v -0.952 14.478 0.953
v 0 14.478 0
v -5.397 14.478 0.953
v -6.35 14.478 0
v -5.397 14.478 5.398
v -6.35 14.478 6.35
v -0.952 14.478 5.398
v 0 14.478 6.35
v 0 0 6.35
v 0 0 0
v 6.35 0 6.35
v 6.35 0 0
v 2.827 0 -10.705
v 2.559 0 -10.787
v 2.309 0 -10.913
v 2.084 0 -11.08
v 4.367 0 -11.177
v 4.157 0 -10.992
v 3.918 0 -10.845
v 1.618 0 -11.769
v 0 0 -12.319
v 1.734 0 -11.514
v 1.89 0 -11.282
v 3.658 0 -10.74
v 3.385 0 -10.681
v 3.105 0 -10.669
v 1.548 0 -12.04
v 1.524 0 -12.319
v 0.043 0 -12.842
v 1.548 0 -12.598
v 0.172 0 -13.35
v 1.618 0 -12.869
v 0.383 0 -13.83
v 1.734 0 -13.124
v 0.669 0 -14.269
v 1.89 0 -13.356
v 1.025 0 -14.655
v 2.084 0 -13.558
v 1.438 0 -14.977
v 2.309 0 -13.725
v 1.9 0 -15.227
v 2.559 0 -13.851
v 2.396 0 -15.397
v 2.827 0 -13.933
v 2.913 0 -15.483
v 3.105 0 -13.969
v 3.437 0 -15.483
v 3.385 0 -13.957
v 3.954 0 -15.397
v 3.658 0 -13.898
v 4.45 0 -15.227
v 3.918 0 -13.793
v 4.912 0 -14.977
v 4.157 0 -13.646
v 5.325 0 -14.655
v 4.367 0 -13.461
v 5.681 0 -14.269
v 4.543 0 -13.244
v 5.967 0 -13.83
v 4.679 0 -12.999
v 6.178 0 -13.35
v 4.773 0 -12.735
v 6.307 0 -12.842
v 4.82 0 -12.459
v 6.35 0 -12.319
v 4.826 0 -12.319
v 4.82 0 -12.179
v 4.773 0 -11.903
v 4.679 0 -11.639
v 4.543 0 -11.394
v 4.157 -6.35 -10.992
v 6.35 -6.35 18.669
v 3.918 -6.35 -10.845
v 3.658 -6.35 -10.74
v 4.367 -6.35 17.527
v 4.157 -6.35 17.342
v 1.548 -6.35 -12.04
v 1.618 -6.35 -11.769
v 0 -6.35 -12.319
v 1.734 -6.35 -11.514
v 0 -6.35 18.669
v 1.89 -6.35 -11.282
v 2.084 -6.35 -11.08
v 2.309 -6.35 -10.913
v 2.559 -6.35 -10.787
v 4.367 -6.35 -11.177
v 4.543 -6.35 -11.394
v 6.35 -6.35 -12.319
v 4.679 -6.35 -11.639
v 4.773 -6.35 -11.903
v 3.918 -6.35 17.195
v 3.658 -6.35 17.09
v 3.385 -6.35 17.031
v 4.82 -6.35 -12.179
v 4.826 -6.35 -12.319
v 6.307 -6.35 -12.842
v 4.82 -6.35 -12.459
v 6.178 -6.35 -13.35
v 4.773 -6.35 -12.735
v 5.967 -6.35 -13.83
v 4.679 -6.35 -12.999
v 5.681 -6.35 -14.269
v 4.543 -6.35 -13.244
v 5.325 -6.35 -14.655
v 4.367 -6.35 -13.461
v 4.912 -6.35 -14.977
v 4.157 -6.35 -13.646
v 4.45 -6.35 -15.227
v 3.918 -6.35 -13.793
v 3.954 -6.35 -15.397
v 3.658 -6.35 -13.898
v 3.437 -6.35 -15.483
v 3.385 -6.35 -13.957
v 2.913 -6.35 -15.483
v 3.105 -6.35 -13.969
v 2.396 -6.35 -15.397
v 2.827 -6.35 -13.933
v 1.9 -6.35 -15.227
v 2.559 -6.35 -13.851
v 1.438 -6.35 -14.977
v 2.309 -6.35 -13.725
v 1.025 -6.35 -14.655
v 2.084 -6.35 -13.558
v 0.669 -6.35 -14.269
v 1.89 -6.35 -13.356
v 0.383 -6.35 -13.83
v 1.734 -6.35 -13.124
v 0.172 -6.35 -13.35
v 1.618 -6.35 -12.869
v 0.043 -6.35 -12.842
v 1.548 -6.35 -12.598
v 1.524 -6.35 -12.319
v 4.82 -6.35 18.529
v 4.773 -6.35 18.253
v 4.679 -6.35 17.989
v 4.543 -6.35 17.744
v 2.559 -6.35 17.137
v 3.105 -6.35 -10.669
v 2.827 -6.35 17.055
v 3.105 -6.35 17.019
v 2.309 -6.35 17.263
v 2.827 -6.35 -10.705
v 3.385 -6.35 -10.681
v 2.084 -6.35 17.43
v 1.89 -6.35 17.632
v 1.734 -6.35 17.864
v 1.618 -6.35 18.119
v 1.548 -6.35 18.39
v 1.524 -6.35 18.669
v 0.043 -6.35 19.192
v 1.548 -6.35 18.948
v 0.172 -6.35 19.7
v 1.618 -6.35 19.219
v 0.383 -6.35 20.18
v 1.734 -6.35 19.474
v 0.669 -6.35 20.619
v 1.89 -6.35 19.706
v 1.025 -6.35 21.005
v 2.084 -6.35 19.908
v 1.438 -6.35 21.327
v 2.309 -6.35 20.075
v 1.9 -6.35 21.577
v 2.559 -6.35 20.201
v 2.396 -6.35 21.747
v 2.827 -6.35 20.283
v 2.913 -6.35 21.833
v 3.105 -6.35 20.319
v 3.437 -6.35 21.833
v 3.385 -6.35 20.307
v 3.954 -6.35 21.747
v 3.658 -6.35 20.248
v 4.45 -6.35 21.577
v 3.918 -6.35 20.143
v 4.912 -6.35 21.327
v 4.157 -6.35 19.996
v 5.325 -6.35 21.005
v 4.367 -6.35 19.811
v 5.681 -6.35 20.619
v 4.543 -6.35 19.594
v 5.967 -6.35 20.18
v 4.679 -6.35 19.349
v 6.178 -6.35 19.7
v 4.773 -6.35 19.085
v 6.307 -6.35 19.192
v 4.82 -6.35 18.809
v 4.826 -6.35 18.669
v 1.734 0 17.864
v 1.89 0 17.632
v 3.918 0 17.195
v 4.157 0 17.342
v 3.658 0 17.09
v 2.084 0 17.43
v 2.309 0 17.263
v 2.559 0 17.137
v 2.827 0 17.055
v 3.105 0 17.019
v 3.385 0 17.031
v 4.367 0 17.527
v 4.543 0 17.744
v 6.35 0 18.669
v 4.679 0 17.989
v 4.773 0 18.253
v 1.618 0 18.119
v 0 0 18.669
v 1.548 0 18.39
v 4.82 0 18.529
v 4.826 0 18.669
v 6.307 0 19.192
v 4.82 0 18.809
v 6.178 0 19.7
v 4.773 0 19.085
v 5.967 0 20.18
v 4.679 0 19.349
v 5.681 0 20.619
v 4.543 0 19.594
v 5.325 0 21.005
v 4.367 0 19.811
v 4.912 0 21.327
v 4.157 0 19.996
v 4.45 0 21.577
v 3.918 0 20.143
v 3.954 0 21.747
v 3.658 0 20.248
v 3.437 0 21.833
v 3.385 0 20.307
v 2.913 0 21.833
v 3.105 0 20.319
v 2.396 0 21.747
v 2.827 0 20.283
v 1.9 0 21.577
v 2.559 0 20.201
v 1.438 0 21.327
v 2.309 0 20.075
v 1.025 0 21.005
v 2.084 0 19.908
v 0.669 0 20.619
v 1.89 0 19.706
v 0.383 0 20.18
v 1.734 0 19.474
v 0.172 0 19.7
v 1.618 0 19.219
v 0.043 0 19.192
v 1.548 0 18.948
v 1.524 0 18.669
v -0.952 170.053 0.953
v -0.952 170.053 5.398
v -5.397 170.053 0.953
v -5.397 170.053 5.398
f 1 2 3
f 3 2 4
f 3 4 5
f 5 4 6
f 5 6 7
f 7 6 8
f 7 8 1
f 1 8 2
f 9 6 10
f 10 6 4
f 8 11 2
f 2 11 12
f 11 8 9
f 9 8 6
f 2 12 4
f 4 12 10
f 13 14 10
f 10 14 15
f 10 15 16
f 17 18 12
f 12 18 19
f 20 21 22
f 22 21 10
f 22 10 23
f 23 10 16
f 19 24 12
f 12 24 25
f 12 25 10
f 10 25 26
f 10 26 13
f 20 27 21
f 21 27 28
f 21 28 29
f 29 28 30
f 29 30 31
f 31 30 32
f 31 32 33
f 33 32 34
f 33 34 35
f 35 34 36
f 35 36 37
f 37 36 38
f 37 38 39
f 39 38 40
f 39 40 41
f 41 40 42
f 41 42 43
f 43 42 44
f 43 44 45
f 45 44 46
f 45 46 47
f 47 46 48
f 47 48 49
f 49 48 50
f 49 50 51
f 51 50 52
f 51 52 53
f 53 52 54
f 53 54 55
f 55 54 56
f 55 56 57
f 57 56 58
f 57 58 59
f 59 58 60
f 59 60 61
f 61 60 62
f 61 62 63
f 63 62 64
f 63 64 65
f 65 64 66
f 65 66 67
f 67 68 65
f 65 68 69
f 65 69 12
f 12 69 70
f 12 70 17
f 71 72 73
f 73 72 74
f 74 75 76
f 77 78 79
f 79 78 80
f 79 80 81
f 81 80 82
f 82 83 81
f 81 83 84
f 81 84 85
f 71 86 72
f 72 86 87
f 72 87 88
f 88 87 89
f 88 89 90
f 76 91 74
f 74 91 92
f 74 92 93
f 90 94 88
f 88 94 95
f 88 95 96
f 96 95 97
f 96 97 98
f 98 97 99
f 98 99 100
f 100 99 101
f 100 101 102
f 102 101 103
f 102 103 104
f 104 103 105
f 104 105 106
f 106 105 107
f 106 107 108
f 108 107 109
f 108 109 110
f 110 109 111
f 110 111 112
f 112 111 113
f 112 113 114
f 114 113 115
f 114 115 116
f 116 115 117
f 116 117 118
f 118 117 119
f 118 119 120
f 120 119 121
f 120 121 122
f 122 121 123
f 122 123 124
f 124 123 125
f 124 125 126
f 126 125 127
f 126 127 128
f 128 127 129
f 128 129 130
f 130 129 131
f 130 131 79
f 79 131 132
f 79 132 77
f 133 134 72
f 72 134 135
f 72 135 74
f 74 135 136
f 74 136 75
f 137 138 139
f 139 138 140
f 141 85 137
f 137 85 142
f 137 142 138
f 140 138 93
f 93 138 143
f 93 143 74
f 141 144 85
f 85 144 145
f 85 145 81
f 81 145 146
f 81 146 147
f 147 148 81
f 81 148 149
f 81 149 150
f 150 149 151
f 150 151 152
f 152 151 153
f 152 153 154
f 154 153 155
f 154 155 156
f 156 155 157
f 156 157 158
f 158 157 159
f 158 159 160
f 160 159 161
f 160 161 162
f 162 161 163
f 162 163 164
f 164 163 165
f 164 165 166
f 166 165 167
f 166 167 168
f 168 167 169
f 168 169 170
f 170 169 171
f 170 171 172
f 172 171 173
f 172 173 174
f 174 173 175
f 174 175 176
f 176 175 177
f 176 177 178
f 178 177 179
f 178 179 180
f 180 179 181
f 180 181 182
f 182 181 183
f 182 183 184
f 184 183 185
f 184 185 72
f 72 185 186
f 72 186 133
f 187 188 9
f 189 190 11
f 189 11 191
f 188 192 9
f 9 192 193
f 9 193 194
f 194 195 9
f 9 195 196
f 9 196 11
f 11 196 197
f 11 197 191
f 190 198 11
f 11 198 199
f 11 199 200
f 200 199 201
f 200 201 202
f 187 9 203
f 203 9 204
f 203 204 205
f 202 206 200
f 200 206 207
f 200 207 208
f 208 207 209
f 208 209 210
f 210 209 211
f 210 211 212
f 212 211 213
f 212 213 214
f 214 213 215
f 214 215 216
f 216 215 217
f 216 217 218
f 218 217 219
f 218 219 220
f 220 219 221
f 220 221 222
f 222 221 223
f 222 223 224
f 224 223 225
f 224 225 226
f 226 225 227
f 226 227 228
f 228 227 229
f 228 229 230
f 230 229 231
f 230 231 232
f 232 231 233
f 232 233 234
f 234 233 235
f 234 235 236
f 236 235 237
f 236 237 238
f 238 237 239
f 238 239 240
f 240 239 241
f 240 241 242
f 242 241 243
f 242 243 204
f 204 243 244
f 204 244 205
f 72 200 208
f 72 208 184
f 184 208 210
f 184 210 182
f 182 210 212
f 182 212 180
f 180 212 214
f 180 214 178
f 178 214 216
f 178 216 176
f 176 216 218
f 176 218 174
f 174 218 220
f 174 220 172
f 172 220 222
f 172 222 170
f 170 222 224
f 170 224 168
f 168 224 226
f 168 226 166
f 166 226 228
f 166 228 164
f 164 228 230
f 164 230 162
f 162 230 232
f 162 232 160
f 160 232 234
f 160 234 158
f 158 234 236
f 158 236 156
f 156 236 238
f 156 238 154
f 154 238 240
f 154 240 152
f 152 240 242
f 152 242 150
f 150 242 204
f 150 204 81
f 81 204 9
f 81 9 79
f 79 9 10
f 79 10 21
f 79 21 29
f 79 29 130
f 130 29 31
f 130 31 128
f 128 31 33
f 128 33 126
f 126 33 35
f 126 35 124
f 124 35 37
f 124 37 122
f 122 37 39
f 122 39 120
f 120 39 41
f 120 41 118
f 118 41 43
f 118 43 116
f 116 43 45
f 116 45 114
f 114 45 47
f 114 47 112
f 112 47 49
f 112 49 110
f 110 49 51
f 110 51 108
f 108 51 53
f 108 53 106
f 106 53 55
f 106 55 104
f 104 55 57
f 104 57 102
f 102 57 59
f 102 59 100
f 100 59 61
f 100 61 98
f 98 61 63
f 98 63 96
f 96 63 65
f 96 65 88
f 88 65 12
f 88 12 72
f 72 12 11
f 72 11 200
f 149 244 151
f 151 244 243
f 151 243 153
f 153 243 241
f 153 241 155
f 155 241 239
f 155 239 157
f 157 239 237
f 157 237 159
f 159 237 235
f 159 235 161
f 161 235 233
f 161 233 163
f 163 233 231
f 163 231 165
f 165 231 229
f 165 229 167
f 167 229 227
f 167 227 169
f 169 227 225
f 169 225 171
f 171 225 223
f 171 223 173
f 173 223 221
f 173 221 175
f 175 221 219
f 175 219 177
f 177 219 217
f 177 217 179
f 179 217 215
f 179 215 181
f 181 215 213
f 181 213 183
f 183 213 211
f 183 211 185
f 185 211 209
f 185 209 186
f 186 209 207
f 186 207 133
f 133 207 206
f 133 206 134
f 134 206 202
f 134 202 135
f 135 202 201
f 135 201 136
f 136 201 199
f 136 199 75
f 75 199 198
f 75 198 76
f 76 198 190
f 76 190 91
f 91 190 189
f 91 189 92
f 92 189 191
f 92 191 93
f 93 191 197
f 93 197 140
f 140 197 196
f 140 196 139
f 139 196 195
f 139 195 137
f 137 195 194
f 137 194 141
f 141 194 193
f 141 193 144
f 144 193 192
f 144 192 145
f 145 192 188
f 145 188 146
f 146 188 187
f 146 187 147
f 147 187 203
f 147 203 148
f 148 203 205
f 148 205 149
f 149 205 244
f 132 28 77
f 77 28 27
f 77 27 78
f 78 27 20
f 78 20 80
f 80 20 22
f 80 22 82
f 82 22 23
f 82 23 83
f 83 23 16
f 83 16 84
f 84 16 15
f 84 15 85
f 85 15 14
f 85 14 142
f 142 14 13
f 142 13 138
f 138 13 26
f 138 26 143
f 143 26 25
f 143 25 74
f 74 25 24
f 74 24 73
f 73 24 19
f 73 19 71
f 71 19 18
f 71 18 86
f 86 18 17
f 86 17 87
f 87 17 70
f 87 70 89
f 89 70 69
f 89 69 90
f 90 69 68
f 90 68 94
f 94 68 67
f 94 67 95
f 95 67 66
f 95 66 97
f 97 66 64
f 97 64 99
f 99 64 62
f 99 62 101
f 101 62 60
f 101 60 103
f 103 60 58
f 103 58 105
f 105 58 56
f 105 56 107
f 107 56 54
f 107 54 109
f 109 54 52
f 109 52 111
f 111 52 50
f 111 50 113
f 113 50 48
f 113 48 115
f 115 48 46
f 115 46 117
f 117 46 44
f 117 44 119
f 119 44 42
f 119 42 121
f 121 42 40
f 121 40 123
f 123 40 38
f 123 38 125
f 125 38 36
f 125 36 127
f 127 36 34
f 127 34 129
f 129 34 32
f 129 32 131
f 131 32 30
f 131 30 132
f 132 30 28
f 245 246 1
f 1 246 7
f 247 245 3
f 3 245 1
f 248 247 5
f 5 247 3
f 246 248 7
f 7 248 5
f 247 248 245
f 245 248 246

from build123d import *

# Parameters (mm, degrees)
BOSS_EXTRUDE1_DEPTH = 6.35
SKETCH2_R           = 1.651
BOSS_EXTRUDE2_DEPTH = 6.35
SKETCH4_W           = 4.445
SKETCH4_H           = 4.445
BOSS_EXTRUDE3_DEPTH = 155.575


with BuildPart() as part:
    # Sketch1 → Boss-Extrude1 (new body)
    with BuildSketch(Plane.XY):
        Polygon((0, 0), (6.35, 0), (0, 14.478), (-6.35, 14.478), align=None)
    extrude(amount=BOSS_EXTRUDE1_DEPTH)

    # Sketch2 → Boss-Extrude2 (add)
    with BuildSketch(Plane.XZ):
        with BuildLine():
            Line((6.35, 18.669), (6.35, -12.319))
            ThreePointArc((6.35, -12.319), (3.175, -15.494), (0, -12.319))
            Line((0, -12.319), (0, 18.669))
            ThreePointArc((0, 18.669), (3.175, 21.844), (6.35, 18.669))
        make_face()
        with Locations((3.175, 18.669)):
            Circle(SKETCH2_R, mode=Mode.SUBTRACT)
        with Locations((3.175, -12.319)):
            Circle(SKETCH2_R, mode=Mode.SUBTRACT)
    extrude(amount=BOSS_EXTRUDE2_DEPTH)

    # Sketch4 → Boss-Extrude3 (add)
    with BuildSketch(Plane(origin=(0, 14.478, 0), x_dir=(1, 0, 0), z_dir=(0, 1, 0))):
        with Locations((-3.175, -3.175)):
            Rectangle(SKETCH4_W, SKETCH4_H)
    extrude(amount=BOSS_EXTRUDE3_DEPTH)


solid = part.part
